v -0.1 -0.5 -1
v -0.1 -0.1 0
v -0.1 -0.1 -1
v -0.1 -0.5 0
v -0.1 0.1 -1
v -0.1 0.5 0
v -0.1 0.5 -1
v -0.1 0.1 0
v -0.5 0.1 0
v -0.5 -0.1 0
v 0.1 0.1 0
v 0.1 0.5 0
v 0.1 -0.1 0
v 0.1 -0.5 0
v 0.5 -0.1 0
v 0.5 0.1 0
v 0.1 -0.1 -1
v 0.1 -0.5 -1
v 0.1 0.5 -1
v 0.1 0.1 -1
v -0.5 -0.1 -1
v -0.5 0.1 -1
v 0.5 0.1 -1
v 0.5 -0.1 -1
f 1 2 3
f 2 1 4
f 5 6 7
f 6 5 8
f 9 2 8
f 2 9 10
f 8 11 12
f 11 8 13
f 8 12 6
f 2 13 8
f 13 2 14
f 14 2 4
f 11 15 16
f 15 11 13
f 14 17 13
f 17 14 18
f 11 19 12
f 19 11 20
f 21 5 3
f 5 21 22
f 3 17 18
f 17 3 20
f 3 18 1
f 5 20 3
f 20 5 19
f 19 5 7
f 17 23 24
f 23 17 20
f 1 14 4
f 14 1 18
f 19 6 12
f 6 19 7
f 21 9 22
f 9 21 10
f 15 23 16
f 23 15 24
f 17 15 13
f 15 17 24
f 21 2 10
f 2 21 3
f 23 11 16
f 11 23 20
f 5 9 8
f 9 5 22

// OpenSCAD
//----------------------------------------------
// Custom Support size must be 1x1x1 
//----------------------------------------------
$fn=10;

translate([-0.5,-0.5,-0.5]) 
union() {
    translate([0.5,0.5,0.0]) cube([0.2,1,1], center = true);
    translate([0.5,0.5,0.0]) cube([1,0.2,1], center = true);
}
